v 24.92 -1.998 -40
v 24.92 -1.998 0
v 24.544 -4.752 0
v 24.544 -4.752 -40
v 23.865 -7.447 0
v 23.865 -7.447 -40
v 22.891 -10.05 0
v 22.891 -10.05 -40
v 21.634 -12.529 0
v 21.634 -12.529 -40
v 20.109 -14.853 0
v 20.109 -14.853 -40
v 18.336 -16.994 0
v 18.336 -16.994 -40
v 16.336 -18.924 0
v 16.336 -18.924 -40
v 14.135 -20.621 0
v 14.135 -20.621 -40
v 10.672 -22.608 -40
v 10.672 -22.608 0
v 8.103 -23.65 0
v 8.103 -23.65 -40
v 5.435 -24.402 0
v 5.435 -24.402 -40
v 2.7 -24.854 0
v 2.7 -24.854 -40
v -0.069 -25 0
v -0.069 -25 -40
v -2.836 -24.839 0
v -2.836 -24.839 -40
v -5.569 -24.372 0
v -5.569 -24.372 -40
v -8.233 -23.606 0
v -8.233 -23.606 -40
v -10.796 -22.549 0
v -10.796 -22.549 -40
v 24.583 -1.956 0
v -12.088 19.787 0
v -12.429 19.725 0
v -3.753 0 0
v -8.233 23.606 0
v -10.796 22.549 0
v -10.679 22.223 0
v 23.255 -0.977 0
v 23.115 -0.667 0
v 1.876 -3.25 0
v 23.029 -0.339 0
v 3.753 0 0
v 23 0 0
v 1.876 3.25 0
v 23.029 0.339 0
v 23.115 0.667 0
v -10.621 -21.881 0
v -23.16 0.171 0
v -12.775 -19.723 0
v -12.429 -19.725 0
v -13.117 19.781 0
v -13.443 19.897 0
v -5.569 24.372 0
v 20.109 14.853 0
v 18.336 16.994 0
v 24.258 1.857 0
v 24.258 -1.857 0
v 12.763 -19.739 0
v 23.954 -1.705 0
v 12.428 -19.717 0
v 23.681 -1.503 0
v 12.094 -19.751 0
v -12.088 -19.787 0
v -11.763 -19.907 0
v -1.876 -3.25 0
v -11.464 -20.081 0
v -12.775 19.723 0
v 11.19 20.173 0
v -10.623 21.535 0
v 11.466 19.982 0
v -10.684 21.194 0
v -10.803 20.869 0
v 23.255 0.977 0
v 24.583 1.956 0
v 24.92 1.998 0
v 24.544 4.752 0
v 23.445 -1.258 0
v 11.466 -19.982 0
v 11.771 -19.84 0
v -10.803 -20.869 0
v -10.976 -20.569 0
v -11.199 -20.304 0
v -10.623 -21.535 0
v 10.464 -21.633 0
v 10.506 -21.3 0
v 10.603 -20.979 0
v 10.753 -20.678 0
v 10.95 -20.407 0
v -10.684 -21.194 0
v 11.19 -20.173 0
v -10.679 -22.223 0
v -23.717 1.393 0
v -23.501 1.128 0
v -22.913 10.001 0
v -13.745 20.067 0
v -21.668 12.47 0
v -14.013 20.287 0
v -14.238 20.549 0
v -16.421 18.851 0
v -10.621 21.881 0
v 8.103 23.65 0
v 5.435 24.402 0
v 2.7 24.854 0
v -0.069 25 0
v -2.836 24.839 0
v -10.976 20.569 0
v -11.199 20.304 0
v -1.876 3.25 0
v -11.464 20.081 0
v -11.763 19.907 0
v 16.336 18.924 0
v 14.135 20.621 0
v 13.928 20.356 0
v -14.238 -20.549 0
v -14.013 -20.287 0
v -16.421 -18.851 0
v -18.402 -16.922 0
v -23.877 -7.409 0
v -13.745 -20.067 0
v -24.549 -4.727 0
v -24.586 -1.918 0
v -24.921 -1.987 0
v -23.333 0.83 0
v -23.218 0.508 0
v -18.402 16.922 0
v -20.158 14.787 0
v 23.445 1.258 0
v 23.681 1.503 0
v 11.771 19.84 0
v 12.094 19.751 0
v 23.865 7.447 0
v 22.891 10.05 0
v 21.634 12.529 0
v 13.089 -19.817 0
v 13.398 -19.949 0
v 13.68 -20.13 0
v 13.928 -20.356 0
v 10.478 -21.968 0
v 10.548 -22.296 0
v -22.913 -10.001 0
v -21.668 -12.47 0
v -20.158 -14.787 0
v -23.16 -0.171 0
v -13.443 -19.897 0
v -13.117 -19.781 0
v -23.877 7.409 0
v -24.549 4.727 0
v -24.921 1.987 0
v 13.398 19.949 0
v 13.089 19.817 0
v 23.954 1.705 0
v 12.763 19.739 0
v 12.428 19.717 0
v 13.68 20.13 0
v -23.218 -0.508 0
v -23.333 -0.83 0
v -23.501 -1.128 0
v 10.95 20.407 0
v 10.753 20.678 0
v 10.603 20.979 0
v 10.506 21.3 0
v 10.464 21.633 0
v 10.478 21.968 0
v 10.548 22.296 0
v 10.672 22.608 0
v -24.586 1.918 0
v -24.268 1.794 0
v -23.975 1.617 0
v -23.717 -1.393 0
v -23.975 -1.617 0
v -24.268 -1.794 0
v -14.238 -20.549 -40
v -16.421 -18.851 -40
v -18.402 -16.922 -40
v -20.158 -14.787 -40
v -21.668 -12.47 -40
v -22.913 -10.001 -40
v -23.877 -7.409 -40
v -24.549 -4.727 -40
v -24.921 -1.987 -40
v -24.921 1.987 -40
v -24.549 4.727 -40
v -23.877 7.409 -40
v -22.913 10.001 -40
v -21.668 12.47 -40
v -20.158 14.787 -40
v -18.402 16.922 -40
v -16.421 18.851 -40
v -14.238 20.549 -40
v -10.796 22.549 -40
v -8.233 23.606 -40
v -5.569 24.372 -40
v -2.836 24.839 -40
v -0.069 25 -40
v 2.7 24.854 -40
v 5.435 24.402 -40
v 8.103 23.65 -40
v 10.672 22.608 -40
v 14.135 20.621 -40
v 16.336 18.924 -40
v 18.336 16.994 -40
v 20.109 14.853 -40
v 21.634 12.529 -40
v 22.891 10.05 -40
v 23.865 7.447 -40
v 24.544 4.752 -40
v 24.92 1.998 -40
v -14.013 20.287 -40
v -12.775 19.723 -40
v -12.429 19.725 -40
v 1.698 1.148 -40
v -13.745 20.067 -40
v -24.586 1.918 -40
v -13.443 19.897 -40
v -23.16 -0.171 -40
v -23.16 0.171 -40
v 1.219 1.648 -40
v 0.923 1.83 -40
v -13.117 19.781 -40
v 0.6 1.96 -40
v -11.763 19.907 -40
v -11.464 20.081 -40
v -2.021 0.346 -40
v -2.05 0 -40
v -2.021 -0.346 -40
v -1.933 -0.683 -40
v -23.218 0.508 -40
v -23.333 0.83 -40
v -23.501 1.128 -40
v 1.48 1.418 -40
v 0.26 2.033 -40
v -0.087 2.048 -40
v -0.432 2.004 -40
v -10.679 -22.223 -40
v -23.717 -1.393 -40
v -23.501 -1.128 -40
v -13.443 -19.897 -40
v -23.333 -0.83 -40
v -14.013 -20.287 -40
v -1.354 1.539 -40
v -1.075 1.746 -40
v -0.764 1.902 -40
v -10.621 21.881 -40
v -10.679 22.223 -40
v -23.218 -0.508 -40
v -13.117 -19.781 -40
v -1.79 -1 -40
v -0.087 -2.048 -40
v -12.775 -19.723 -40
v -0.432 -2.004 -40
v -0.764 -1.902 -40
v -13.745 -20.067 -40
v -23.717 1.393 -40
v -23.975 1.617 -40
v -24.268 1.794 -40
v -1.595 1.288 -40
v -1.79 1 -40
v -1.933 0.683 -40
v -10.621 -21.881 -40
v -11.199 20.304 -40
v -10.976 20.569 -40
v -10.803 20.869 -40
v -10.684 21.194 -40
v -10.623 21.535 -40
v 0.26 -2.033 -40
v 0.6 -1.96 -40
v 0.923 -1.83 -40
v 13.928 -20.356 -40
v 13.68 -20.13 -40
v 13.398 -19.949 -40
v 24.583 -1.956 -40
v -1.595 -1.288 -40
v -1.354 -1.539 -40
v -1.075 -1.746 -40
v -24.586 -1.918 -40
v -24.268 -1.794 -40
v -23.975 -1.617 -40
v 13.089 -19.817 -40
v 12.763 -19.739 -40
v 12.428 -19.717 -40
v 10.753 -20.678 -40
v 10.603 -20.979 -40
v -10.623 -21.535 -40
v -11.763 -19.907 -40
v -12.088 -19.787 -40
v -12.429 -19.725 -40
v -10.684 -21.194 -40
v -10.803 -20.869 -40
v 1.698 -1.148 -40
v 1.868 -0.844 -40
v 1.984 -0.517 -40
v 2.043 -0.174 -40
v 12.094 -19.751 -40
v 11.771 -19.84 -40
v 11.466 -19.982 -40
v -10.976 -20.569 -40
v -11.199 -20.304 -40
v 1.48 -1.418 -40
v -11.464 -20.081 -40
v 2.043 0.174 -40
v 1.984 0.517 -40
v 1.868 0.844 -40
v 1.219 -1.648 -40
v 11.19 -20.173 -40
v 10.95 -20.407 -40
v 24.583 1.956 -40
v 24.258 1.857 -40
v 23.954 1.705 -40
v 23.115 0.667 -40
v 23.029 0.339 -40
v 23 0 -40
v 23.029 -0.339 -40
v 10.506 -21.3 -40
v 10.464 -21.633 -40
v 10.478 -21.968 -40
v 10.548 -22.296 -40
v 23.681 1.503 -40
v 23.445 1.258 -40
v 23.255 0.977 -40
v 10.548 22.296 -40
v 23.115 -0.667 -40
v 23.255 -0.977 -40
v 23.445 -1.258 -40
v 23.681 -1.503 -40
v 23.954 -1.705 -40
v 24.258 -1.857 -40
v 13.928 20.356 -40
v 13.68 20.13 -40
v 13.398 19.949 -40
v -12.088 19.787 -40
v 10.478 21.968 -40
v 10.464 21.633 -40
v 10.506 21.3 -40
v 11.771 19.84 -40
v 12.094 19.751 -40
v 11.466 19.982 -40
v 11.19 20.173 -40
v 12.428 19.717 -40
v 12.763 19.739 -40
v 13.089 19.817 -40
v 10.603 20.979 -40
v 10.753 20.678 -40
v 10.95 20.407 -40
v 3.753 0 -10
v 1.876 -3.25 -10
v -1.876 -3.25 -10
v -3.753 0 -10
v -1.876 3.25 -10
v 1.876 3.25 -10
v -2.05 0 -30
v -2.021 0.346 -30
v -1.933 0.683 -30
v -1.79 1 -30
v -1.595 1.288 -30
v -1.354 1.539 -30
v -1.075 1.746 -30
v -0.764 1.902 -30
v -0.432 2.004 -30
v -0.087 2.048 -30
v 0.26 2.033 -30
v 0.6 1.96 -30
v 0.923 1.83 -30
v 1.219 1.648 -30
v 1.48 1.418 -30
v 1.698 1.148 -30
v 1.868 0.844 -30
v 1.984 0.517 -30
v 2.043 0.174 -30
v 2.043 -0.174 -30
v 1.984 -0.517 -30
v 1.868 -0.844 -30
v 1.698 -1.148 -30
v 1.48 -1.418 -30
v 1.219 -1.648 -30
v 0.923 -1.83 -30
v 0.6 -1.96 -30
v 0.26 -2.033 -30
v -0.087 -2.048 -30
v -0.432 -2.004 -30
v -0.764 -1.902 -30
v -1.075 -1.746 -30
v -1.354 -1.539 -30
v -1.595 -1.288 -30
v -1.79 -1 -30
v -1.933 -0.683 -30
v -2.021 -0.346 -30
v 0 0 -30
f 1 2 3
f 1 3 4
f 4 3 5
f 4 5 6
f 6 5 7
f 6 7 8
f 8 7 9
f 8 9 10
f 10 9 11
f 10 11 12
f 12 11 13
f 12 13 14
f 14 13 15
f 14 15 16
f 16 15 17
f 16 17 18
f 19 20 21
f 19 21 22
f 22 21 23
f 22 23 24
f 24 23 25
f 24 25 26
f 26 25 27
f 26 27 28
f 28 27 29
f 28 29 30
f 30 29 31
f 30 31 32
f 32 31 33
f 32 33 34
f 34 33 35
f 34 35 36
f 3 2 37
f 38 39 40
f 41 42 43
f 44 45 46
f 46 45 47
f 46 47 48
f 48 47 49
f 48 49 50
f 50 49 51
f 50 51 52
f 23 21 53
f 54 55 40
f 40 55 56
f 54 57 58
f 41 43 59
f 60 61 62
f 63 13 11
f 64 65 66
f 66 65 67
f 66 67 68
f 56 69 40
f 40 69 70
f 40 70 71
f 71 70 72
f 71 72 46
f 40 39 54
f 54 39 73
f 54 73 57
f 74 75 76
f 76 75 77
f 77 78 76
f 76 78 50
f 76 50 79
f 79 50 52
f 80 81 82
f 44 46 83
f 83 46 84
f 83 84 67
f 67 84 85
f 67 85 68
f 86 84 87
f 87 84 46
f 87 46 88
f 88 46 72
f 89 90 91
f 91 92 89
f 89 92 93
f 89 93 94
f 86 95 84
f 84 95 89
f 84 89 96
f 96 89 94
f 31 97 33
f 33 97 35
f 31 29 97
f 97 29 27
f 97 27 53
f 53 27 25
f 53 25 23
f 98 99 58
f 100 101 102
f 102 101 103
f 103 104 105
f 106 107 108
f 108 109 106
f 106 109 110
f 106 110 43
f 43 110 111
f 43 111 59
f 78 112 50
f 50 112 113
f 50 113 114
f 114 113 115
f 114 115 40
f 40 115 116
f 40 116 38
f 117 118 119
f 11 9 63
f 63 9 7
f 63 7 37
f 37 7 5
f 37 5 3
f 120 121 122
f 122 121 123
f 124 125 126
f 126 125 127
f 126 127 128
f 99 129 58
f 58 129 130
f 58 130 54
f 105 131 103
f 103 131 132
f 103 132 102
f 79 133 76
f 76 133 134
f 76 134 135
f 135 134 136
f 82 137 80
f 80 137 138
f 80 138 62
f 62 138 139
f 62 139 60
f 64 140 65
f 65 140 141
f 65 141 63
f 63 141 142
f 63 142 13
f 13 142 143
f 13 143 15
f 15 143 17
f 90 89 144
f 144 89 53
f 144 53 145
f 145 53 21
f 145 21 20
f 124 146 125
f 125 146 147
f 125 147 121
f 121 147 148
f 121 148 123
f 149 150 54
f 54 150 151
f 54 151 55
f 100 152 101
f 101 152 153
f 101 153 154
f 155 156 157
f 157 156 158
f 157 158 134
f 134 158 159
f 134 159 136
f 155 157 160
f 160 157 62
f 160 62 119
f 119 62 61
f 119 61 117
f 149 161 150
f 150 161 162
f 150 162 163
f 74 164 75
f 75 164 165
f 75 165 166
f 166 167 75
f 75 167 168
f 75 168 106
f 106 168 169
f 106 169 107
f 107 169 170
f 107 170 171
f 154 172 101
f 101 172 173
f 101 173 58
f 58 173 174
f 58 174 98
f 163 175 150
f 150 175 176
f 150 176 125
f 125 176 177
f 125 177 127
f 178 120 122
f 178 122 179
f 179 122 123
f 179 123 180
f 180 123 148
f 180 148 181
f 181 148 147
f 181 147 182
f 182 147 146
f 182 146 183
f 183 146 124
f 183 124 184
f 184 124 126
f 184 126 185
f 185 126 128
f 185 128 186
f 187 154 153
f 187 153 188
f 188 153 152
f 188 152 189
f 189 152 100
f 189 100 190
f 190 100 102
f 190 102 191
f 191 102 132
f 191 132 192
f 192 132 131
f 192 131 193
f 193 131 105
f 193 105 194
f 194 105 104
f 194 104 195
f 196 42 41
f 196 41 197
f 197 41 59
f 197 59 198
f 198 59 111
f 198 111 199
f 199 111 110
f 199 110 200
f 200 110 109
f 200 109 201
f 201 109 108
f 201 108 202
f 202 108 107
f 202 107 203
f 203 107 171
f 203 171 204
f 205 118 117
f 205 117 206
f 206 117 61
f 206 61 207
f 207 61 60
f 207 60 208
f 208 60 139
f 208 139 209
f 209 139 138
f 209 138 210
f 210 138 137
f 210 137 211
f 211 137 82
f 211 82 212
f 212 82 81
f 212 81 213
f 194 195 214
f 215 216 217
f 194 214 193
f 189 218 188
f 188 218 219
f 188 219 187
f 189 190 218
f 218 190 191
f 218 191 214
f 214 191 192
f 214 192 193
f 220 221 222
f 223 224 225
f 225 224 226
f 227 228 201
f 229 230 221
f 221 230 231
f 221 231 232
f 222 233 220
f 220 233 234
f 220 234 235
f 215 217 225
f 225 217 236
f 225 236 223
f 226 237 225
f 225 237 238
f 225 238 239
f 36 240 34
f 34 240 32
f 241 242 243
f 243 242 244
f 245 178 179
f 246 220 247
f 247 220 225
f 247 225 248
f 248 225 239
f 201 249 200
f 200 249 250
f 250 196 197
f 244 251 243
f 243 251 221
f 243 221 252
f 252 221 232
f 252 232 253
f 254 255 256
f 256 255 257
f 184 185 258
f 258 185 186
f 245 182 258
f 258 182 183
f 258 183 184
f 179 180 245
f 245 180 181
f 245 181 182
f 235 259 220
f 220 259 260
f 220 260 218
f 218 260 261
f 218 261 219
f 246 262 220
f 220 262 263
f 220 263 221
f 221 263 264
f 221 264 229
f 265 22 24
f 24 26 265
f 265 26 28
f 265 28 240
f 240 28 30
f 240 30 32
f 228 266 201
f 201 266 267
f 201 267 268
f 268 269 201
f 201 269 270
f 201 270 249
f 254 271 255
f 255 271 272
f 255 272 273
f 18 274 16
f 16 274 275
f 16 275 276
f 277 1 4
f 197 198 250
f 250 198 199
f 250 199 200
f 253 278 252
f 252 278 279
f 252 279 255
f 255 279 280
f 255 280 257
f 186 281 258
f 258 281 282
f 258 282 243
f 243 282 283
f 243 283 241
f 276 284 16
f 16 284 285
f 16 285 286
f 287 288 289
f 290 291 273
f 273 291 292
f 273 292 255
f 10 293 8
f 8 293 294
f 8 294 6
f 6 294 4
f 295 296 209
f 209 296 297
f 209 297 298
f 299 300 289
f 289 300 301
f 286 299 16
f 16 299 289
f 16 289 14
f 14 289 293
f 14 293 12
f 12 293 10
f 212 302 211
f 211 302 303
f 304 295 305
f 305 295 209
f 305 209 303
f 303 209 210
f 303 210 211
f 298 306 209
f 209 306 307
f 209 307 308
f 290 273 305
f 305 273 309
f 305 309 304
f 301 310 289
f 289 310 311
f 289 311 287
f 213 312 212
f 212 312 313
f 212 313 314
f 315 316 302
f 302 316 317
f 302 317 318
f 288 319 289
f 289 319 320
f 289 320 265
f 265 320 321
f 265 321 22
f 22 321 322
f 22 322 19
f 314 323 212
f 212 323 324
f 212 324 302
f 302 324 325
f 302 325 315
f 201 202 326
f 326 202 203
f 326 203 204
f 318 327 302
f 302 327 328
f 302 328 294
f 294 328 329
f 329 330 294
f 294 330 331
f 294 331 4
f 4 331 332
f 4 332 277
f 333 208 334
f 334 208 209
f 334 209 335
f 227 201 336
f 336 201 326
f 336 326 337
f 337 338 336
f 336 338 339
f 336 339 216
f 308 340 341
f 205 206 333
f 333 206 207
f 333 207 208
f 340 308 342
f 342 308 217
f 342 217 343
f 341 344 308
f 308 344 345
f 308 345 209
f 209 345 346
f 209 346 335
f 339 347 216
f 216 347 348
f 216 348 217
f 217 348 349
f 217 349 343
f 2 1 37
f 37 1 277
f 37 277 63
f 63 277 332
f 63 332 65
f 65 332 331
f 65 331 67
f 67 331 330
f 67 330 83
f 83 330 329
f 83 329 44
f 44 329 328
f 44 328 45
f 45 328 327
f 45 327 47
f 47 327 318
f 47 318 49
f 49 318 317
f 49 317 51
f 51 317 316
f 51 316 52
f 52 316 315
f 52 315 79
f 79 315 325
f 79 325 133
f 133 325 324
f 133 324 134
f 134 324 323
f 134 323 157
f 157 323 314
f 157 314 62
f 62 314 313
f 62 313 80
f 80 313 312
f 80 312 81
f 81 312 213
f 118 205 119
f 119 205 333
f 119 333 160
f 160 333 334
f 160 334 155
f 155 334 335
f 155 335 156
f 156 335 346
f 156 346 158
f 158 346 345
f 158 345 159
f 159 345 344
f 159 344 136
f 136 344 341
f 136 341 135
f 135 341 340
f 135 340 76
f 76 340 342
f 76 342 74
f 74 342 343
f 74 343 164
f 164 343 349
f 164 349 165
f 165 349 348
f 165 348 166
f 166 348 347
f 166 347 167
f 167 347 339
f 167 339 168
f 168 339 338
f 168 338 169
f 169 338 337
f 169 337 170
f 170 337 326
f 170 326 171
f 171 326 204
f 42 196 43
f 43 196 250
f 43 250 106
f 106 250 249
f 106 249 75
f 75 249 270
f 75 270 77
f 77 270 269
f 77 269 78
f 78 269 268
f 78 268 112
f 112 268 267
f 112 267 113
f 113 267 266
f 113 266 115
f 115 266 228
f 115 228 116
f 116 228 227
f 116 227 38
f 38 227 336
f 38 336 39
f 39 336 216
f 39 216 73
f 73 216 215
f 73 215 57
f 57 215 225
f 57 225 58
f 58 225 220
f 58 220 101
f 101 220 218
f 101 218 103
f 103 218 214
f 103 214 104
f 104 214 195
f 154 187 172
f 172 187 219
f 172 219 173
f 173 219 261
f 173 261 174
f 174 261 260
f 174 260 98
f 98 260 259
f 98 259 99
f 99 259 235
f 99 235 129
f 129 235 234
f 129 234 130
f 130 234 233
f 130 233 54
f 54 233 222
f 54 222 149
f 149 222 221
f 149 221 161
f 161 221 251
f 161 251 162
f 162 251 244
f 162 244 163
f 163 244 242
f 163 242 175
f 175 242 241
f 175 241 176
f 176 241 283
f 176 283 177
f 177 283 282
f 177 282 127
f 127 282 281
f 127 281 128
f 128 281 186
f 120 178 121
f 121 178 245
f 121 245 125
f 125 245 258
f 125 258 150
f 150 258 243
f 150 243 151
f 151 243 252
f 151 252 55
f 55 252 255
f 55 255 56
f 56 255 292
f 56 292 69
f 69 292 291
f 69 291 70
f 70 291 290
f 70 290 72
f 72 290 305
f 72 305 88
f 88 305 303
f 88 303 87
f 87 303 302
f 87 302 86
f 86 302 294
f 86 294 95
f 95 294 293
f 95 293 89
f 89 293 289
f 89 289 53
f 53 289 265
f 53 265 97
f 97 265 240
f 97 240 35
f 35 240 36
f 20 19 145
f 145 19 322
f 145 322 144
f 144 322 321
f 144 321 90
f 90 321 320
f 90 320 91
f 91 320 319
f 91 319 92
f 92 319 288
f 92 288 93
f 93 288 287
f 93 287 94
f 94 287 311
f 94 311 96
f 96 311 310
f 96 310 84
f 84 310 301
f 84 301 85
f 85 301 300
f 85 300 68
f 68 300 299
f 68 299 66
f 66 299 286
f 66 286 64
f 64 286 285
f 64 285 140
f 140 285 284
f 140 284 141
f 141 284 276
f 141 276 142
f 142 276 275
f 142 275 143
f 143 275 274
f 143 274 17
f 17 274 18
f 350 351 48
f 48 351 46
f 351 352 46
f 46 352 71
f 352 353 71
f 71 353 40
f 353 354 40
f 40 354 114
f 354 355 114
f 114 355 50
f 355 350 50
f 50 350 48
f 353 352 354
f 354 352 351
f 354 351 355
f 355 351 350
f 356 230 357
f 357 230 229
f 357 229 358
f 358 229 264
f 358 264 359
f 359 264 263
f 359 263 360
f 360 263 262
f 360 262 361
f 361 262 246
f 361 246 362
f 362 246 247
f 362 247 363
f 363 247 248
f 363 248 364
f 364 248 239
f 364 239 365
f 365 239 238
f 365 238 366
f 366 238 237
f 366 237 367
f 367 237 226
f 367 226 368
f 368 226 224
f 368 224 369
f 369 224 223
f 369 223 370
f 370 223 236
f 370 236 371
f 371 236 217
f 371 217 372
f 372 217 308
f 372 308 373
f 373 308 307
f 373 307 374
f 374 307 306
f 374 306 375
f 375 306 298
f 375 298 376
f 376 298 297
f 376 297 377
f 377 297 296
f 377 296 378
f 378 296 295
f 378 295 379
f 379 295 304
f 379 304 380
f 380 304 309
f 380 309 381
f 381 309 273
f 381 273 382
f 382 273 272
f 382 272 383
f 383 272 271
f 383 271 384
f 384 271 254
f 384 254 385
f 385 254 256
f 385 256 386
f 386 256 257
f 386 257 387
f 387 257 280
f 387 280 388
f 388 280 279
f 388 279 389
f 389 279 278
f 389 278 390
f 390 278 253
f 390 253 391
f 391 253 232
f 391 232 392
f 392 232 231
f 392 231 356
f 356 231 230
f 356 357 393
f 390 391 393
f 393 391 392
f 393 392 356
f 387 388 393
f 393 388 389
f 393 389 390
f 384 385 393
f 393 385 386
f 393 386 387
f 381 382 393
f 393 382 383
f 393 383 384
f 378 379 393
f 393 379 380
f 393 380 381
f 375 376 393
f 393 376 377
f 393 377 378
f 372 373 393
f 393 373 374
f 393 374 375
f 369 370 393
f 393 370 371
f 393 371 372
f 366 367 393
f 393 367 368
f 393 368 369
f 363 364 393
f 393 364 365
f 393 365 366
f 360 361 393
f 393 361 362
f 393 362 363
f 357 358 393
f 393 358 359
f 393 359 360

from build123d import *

# Parameters (mm, degrees)
SKETCH1_R           = 25
BOSS_EXTRUDE1_DEPTH = 40
CUT_EXTRUDE1_DEPTH  = 54.38539126
CIRPATTERN1_START   = -40
CIRPATTERN1_DEPTH   = 40
CUT_EXTRUDE2_DEPTH  = 10
SKETCH4_R           = 2.05
CUT_EXTRUDE3_DEPTH  = 10


# Read off the part's stored shape, not the designer's step: CirPattern1
with BuildPart() as part:
    # Sketch1 → Boss-Extrude1 (new body)
    with BuildSketch(Plane.XY):
        Circle(SKETCH1_R)
    extrude(amount=-BOSS_EXTRUDE1_DEPTH)

    # Sketch2 → Cut-Extrude1 (cut, through all)
    with BuildSketch(Plane.XY):
        with BuildLine():
            Line((148.327454228, 6.938651312), (24.92, 1.998399359))
            ThreePointArc((24.92, 1.998399359), (23, 0), (24.92, -1.998399359))
            Line((24.92, -1.998399359), (148.327454228, -6.938651312))
            Line((148.327454228, -6.938651312), (395.340051868, -6.938651312))
            Line((395.340051868, -6.938651312), (395.340051868, 6.938651312))
            Line((395.340051868, 6.938651312), (148.327454228, 6.938651312))
        make_face()
    extrude(amount=-CUT_EXTRUDE1_DEPTH, mode=Mode.SUBTRACT)

    # CirPattern1 outline → CirPattern1 (cut)
    with BuildSketch(Plane.XY.offset(CIRPATTERN1_START)):
        with BuildLine():
            ThreePointArc((14.134833251, -20.620535613), (11.466483325, -19.981917804), (10.671520375, -22.607933406))
            ThreePointArc((10.671520375, -22.607933406), (12.442918972, -21.683490666), (14.134833251, -20.620535613))
        make_face()
        with BuildLine():
            ThreePointArc((-10.795666007, -22.548915616), (-11.609703747, -19.987178691), (-14.238240755, -20.549270065))
            ThreePointArc((-14.238240755, -20.549270065), (-12.556821553, -21.617729586), (-10.795666007, -22.548915616))
        make_face()
        with BuildLine():
            ThreePointArc((-24.920945806, -1.986569943), (-23.152332628, 0), (-24.920945806, 1.986569943))
            ThreePointArc((-24.920945806, 1.986569943), (-25, 0), (-24.920945806, -1.986569943))
        make_face()
        with BuildLine():
            ThreePointArc((-14.238240755, 20.549270065), (-11.609703747, 19.987178691), (-10.795666007, 22.548915616))
            ThreePointArc((-10.795666007, 22.548915616), (-12.556821553, 21.617729586), (-14.238240755, 20.549270065))
        make_face()
        with BuildLine():
            ThreePointArc((10.671520375, 22.607933406), (11.466483325, 19.981917804), (14.134833251, 20.620535613))
            ThreePointArc((14.134833251, 20.620535613), (12.442918972, 21.683490666), (10.671520375, 22.607933406))
        make_face()
    extrude(amount=CIRPATTERN1_DEPTH, mode=Mode.SUBTRACT)

    # Sketch3 → Cut-Extrude2 (cut)
    with BuildSketch(Plane.XY):
        Polygon((3.75277675, 0), (1.876388375, 3.25), (-1.876388375, 3.25), (-3.75277675, 0), (-1.876388375, -3.25), (1.876388375, -3.25), align=None)
    extrude(amount=-CUT_EXTRUDE2_DEPTH, mode=Mode.SUBTRACT)

    # Sketch4 → Cut-Extrude3 (cut)
    with BuildSketch(Plane(origin=(0, 0, -40), x_dir=(-1, 0, 0), z_dir=(0, 0, -1))):
        Circle(SKETCH4_R)
    extrude(amount=-CUT_EXTRUDE3_DEPTH, mode=Mode.SUBTRACT)


solid = part.part
